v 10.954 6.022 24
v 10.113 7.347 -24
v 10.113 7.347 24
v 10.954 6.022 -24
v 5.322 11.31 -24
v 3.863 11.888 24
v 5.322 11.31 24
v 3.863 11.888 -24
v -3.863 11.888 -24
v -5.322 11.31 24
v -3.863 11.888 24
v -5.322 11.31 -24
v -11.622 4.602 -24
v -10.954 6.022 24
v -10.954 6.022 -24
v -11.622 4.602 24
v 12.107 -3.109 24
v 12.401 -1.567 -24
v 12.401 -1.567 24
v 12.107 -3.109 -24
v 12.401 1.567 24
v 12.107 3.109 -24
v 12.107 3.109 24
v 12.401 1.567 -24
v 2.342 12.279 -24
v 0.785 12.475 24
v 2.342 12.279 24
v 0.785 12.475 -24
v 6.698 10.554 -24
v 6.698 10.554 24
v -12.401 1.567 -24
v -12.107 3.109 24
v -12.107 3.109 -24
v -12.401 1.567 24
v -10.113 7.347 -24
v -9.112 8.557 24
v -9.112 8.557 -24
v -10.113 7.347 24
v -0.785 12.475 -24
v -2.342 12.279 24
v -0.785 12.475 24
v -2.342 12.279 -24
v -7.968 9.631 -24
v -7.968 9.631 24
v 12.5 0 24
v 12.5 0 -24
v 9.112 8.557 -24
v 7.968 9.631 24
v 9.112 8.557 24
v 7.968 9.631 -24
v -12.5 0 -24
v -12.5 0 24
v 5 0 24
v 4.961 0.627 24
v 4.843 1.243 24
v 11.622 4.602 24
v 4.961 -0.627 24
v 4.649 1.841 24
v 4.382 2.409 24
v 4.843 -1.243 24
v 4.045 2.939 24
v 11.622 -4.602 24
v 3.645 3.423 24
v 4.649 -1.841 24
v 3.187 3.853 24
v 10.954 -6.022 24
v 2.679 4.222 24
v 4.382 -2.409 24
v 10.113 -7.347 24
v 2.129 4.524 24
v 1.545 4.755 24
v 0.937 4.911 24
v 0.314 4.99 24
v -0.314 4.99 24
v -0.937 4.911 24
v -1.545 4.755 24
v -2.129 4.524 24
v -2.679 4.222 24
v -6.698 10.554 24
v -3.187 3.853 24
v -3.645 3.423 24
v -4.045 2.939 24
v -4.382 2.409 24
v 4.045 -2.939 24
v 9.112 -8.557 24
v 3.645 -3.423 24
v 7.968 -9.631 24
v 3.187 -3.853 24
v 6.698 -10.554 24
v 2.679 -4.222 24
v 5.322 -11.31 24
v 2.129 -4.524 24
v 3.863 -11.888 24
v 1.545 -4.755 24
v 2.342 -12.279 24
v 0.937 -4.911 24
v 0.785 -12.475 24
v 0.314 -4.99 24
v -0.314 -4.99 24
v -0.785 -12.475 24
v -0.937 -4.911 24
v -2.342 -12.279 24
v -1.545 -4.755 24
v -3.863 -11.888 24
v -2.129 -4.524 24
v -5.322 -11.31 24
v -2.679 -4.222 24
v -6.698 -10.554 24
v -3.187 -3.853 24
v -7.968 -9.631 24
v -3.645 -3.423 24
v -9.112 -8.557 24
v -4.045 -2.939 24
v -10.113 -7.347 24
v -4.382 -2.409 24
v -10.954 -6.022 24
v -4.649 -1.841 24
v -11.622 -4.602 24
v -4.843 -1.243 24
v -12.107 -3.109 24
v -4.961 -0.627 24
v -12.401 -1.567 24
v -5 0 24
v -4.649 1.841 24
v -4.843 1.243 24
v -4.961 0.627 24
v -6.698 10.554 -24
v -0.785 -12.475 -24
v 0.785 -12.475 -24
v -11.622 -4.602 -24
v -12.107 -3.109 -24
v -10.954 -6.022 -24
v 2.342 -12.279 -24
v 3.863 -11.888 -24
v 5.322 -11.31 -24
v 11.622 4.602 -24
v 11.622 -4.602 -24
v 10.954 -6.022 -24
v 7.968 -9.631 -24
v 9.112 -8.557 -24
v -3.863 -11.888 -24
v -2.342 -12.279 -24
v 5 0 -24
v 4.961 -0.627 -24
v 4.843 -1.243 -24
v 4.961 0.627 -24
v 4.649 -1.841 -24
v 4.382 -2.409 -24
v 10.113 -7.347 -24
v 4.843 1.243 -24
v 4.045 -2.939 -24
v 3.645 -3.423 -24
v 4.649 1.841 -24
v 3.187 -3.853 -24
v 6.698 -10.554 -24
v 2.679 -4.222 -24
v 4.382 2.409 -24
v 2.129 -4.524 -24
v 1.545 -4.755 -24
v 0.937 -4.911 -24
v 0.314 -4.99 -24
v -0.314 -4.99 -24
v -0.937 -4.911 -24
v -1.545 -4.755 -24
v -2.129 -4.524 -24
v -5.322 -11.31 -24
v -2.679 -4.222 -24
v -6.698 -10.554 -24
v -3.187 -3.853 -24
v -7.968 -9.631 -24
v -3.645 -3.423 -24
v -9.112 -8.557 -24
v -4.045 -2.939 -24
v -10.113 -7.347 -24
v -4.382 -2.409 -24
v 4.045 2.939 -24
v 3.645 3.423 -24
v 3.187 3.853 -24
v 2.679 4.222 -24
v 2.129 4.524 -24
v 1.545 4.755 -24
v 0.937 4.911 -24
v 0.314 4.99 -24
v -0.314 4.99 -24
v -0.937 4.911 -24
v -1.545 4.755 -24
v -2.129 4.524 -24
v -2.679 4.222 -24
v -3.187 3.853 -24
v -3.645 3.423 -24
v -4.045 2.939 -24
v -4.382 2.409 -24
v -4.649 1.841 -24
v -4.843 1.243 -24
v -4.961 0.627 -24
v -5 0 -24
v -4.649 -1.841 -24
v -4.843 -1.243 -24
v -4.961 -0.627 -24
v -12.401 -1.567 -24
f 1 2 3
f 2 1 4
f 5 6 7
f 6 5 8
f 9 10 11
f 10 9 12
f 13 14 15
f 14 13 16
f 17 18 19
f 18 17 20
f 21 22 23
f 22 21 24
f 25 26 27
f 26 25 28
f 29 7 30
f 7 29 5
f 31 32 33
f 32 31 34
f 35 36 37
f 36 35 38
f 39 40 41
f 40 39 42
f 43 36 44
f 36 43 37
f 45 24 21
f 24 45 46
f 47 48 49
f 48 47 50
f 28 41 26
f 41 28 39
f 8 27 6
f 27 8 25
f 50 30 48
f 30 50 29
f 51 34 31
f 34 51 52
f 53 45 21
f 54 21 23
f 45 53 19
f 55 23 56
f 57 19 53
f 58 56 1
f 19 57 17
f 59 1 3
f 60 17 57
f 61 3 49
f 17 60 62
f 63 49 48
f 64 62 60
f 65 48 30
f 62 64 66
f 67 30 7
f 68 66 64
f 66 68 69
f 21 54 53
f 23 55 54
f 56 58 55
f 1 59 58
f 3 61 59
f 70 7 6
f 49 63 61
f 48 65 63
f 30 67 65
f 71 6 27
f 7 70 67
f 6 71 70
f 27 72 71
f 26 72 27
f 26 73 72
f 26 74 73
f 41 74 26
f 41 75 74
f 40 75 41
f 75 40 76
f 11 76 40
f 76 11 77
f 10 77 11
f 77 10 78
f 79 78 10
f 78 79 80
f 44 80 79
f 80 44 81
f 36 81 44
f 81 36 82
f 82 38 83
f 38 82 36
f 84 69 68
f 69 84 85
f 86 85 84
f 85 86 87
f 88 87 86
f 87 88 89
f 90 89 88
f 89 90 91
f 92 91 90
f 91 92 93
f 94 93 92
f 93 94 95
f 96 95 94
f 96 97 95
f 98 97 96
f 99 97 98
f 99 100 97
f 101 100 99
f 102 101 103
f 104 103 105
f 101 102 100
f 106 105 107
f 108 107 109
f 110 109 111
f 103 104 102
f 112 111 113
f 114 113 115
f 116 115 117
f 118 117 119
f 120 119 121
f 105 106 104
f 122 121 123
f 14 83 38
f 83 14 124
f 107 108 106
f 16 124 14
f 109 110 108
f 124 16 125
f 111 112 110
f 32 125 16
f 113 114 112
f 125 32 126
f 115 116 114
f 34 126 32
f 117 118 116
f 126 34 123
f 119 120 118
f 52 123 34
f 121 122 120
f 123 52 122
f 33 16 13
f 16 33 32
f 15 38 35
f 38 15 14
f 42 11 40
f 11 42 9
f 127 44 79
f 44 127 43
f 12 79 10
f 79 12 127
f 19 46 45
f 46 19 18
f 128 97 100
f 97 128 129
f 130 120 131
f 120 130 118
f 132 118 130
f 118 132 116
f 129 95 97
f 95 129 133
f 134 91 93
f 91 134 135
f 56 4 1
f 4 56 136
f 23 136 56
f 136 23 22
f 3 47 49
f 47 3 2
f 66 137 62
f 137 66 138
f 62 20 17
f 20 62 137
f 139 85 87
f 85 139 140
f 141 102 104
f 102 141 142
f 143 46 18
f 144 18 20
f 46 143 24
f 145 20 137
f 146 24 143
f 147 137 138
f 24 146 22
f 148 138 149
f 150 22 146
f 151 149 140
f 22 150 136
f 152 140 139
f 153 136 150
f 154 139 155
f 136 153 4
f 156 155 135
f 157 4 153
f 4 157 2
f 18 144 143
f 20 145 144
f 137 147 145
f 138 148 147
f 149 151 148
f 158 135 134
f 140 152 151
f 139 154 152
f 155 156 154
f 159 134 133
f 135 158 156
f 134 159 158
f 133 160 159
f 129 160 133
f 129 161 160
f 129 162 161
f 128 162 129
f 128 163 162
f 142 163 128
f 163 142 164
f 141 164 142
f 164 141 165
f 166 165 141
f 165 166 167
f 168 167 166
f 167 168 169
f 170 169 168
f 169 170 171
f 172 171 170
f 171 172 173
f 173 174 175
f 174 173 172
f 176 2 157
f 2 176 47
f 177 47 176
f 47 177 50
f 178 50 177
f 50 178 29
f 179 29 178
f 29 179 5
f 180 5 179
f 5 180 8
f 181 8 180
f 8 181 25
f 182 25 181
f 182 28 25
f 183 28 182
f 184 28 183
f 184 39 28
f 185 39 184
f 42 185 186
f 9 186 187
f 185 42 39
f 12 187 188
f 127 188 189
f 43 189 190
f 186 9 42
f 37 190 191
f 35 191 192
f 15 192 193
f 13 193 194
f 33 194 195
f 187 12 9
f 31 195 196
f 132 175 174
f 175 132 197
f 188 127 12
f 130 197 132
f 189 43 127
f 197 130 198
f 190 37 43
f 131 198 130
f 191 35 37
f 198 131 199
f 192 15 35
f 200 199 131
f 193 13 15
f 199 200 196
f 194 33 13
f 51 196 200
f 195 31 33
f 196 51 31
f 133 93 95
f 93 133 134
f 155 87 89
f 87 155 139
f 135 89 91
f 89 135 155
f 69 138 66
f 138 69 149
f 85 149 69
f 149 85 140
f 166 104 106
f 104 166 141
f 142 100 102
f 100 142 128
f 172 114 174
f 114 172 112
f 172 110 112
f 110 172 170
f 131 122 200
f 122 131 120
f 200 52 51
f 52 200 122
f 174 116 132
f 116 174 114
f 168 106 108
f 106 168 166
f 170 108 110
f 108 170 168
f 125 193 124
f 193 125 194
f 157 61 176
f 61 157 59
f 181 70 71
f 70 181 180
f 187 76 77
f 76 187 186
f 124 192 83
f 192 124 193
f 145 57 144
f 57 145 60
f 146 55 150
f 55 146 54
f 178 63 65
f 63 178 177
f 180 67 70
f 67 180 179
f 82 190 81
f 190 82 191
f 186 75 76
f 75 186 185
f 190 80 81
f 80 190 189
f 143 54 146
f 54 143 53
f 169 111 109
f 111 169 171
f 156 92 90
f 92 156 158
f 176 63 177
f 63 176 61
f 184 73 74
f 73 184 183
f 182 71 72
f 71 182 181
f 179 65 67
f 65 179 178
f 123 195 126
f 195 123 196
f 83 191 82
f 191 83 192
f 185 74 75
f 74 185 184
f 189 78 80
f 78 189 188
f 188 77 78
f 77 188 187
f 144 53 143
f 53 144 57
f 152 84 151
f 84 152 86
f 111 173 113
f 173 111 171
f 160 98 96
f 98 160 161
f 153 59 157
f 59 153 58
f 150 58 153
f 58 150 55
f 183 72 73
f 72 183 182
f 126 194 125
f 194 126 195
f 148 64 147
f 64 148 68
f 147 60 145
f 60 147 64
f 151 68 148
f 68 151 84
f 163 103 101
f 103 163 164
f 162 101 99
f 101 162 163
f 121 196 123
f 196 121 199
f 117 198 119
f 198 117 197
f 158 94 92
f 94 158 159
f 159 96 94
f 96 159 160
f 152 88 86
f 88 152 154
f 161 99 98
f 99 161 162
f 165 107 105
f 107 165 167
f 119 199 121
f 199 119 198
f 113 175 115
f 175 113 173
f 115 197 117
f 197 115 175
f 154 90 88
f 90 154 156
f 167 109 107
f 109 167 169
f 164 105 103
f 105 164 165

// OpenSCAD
$fn = 50;


difference() {
	union() {
		translate(v = [0, 0, -24.0000000000]) {
			cylinder(h = 48, r = 12.5000000000);
		}
	}
	union() {
		translate(v = [0, 0, -100.0000000000]) {
			cylinder(h = 200, r = 5);
		}
	}
}
